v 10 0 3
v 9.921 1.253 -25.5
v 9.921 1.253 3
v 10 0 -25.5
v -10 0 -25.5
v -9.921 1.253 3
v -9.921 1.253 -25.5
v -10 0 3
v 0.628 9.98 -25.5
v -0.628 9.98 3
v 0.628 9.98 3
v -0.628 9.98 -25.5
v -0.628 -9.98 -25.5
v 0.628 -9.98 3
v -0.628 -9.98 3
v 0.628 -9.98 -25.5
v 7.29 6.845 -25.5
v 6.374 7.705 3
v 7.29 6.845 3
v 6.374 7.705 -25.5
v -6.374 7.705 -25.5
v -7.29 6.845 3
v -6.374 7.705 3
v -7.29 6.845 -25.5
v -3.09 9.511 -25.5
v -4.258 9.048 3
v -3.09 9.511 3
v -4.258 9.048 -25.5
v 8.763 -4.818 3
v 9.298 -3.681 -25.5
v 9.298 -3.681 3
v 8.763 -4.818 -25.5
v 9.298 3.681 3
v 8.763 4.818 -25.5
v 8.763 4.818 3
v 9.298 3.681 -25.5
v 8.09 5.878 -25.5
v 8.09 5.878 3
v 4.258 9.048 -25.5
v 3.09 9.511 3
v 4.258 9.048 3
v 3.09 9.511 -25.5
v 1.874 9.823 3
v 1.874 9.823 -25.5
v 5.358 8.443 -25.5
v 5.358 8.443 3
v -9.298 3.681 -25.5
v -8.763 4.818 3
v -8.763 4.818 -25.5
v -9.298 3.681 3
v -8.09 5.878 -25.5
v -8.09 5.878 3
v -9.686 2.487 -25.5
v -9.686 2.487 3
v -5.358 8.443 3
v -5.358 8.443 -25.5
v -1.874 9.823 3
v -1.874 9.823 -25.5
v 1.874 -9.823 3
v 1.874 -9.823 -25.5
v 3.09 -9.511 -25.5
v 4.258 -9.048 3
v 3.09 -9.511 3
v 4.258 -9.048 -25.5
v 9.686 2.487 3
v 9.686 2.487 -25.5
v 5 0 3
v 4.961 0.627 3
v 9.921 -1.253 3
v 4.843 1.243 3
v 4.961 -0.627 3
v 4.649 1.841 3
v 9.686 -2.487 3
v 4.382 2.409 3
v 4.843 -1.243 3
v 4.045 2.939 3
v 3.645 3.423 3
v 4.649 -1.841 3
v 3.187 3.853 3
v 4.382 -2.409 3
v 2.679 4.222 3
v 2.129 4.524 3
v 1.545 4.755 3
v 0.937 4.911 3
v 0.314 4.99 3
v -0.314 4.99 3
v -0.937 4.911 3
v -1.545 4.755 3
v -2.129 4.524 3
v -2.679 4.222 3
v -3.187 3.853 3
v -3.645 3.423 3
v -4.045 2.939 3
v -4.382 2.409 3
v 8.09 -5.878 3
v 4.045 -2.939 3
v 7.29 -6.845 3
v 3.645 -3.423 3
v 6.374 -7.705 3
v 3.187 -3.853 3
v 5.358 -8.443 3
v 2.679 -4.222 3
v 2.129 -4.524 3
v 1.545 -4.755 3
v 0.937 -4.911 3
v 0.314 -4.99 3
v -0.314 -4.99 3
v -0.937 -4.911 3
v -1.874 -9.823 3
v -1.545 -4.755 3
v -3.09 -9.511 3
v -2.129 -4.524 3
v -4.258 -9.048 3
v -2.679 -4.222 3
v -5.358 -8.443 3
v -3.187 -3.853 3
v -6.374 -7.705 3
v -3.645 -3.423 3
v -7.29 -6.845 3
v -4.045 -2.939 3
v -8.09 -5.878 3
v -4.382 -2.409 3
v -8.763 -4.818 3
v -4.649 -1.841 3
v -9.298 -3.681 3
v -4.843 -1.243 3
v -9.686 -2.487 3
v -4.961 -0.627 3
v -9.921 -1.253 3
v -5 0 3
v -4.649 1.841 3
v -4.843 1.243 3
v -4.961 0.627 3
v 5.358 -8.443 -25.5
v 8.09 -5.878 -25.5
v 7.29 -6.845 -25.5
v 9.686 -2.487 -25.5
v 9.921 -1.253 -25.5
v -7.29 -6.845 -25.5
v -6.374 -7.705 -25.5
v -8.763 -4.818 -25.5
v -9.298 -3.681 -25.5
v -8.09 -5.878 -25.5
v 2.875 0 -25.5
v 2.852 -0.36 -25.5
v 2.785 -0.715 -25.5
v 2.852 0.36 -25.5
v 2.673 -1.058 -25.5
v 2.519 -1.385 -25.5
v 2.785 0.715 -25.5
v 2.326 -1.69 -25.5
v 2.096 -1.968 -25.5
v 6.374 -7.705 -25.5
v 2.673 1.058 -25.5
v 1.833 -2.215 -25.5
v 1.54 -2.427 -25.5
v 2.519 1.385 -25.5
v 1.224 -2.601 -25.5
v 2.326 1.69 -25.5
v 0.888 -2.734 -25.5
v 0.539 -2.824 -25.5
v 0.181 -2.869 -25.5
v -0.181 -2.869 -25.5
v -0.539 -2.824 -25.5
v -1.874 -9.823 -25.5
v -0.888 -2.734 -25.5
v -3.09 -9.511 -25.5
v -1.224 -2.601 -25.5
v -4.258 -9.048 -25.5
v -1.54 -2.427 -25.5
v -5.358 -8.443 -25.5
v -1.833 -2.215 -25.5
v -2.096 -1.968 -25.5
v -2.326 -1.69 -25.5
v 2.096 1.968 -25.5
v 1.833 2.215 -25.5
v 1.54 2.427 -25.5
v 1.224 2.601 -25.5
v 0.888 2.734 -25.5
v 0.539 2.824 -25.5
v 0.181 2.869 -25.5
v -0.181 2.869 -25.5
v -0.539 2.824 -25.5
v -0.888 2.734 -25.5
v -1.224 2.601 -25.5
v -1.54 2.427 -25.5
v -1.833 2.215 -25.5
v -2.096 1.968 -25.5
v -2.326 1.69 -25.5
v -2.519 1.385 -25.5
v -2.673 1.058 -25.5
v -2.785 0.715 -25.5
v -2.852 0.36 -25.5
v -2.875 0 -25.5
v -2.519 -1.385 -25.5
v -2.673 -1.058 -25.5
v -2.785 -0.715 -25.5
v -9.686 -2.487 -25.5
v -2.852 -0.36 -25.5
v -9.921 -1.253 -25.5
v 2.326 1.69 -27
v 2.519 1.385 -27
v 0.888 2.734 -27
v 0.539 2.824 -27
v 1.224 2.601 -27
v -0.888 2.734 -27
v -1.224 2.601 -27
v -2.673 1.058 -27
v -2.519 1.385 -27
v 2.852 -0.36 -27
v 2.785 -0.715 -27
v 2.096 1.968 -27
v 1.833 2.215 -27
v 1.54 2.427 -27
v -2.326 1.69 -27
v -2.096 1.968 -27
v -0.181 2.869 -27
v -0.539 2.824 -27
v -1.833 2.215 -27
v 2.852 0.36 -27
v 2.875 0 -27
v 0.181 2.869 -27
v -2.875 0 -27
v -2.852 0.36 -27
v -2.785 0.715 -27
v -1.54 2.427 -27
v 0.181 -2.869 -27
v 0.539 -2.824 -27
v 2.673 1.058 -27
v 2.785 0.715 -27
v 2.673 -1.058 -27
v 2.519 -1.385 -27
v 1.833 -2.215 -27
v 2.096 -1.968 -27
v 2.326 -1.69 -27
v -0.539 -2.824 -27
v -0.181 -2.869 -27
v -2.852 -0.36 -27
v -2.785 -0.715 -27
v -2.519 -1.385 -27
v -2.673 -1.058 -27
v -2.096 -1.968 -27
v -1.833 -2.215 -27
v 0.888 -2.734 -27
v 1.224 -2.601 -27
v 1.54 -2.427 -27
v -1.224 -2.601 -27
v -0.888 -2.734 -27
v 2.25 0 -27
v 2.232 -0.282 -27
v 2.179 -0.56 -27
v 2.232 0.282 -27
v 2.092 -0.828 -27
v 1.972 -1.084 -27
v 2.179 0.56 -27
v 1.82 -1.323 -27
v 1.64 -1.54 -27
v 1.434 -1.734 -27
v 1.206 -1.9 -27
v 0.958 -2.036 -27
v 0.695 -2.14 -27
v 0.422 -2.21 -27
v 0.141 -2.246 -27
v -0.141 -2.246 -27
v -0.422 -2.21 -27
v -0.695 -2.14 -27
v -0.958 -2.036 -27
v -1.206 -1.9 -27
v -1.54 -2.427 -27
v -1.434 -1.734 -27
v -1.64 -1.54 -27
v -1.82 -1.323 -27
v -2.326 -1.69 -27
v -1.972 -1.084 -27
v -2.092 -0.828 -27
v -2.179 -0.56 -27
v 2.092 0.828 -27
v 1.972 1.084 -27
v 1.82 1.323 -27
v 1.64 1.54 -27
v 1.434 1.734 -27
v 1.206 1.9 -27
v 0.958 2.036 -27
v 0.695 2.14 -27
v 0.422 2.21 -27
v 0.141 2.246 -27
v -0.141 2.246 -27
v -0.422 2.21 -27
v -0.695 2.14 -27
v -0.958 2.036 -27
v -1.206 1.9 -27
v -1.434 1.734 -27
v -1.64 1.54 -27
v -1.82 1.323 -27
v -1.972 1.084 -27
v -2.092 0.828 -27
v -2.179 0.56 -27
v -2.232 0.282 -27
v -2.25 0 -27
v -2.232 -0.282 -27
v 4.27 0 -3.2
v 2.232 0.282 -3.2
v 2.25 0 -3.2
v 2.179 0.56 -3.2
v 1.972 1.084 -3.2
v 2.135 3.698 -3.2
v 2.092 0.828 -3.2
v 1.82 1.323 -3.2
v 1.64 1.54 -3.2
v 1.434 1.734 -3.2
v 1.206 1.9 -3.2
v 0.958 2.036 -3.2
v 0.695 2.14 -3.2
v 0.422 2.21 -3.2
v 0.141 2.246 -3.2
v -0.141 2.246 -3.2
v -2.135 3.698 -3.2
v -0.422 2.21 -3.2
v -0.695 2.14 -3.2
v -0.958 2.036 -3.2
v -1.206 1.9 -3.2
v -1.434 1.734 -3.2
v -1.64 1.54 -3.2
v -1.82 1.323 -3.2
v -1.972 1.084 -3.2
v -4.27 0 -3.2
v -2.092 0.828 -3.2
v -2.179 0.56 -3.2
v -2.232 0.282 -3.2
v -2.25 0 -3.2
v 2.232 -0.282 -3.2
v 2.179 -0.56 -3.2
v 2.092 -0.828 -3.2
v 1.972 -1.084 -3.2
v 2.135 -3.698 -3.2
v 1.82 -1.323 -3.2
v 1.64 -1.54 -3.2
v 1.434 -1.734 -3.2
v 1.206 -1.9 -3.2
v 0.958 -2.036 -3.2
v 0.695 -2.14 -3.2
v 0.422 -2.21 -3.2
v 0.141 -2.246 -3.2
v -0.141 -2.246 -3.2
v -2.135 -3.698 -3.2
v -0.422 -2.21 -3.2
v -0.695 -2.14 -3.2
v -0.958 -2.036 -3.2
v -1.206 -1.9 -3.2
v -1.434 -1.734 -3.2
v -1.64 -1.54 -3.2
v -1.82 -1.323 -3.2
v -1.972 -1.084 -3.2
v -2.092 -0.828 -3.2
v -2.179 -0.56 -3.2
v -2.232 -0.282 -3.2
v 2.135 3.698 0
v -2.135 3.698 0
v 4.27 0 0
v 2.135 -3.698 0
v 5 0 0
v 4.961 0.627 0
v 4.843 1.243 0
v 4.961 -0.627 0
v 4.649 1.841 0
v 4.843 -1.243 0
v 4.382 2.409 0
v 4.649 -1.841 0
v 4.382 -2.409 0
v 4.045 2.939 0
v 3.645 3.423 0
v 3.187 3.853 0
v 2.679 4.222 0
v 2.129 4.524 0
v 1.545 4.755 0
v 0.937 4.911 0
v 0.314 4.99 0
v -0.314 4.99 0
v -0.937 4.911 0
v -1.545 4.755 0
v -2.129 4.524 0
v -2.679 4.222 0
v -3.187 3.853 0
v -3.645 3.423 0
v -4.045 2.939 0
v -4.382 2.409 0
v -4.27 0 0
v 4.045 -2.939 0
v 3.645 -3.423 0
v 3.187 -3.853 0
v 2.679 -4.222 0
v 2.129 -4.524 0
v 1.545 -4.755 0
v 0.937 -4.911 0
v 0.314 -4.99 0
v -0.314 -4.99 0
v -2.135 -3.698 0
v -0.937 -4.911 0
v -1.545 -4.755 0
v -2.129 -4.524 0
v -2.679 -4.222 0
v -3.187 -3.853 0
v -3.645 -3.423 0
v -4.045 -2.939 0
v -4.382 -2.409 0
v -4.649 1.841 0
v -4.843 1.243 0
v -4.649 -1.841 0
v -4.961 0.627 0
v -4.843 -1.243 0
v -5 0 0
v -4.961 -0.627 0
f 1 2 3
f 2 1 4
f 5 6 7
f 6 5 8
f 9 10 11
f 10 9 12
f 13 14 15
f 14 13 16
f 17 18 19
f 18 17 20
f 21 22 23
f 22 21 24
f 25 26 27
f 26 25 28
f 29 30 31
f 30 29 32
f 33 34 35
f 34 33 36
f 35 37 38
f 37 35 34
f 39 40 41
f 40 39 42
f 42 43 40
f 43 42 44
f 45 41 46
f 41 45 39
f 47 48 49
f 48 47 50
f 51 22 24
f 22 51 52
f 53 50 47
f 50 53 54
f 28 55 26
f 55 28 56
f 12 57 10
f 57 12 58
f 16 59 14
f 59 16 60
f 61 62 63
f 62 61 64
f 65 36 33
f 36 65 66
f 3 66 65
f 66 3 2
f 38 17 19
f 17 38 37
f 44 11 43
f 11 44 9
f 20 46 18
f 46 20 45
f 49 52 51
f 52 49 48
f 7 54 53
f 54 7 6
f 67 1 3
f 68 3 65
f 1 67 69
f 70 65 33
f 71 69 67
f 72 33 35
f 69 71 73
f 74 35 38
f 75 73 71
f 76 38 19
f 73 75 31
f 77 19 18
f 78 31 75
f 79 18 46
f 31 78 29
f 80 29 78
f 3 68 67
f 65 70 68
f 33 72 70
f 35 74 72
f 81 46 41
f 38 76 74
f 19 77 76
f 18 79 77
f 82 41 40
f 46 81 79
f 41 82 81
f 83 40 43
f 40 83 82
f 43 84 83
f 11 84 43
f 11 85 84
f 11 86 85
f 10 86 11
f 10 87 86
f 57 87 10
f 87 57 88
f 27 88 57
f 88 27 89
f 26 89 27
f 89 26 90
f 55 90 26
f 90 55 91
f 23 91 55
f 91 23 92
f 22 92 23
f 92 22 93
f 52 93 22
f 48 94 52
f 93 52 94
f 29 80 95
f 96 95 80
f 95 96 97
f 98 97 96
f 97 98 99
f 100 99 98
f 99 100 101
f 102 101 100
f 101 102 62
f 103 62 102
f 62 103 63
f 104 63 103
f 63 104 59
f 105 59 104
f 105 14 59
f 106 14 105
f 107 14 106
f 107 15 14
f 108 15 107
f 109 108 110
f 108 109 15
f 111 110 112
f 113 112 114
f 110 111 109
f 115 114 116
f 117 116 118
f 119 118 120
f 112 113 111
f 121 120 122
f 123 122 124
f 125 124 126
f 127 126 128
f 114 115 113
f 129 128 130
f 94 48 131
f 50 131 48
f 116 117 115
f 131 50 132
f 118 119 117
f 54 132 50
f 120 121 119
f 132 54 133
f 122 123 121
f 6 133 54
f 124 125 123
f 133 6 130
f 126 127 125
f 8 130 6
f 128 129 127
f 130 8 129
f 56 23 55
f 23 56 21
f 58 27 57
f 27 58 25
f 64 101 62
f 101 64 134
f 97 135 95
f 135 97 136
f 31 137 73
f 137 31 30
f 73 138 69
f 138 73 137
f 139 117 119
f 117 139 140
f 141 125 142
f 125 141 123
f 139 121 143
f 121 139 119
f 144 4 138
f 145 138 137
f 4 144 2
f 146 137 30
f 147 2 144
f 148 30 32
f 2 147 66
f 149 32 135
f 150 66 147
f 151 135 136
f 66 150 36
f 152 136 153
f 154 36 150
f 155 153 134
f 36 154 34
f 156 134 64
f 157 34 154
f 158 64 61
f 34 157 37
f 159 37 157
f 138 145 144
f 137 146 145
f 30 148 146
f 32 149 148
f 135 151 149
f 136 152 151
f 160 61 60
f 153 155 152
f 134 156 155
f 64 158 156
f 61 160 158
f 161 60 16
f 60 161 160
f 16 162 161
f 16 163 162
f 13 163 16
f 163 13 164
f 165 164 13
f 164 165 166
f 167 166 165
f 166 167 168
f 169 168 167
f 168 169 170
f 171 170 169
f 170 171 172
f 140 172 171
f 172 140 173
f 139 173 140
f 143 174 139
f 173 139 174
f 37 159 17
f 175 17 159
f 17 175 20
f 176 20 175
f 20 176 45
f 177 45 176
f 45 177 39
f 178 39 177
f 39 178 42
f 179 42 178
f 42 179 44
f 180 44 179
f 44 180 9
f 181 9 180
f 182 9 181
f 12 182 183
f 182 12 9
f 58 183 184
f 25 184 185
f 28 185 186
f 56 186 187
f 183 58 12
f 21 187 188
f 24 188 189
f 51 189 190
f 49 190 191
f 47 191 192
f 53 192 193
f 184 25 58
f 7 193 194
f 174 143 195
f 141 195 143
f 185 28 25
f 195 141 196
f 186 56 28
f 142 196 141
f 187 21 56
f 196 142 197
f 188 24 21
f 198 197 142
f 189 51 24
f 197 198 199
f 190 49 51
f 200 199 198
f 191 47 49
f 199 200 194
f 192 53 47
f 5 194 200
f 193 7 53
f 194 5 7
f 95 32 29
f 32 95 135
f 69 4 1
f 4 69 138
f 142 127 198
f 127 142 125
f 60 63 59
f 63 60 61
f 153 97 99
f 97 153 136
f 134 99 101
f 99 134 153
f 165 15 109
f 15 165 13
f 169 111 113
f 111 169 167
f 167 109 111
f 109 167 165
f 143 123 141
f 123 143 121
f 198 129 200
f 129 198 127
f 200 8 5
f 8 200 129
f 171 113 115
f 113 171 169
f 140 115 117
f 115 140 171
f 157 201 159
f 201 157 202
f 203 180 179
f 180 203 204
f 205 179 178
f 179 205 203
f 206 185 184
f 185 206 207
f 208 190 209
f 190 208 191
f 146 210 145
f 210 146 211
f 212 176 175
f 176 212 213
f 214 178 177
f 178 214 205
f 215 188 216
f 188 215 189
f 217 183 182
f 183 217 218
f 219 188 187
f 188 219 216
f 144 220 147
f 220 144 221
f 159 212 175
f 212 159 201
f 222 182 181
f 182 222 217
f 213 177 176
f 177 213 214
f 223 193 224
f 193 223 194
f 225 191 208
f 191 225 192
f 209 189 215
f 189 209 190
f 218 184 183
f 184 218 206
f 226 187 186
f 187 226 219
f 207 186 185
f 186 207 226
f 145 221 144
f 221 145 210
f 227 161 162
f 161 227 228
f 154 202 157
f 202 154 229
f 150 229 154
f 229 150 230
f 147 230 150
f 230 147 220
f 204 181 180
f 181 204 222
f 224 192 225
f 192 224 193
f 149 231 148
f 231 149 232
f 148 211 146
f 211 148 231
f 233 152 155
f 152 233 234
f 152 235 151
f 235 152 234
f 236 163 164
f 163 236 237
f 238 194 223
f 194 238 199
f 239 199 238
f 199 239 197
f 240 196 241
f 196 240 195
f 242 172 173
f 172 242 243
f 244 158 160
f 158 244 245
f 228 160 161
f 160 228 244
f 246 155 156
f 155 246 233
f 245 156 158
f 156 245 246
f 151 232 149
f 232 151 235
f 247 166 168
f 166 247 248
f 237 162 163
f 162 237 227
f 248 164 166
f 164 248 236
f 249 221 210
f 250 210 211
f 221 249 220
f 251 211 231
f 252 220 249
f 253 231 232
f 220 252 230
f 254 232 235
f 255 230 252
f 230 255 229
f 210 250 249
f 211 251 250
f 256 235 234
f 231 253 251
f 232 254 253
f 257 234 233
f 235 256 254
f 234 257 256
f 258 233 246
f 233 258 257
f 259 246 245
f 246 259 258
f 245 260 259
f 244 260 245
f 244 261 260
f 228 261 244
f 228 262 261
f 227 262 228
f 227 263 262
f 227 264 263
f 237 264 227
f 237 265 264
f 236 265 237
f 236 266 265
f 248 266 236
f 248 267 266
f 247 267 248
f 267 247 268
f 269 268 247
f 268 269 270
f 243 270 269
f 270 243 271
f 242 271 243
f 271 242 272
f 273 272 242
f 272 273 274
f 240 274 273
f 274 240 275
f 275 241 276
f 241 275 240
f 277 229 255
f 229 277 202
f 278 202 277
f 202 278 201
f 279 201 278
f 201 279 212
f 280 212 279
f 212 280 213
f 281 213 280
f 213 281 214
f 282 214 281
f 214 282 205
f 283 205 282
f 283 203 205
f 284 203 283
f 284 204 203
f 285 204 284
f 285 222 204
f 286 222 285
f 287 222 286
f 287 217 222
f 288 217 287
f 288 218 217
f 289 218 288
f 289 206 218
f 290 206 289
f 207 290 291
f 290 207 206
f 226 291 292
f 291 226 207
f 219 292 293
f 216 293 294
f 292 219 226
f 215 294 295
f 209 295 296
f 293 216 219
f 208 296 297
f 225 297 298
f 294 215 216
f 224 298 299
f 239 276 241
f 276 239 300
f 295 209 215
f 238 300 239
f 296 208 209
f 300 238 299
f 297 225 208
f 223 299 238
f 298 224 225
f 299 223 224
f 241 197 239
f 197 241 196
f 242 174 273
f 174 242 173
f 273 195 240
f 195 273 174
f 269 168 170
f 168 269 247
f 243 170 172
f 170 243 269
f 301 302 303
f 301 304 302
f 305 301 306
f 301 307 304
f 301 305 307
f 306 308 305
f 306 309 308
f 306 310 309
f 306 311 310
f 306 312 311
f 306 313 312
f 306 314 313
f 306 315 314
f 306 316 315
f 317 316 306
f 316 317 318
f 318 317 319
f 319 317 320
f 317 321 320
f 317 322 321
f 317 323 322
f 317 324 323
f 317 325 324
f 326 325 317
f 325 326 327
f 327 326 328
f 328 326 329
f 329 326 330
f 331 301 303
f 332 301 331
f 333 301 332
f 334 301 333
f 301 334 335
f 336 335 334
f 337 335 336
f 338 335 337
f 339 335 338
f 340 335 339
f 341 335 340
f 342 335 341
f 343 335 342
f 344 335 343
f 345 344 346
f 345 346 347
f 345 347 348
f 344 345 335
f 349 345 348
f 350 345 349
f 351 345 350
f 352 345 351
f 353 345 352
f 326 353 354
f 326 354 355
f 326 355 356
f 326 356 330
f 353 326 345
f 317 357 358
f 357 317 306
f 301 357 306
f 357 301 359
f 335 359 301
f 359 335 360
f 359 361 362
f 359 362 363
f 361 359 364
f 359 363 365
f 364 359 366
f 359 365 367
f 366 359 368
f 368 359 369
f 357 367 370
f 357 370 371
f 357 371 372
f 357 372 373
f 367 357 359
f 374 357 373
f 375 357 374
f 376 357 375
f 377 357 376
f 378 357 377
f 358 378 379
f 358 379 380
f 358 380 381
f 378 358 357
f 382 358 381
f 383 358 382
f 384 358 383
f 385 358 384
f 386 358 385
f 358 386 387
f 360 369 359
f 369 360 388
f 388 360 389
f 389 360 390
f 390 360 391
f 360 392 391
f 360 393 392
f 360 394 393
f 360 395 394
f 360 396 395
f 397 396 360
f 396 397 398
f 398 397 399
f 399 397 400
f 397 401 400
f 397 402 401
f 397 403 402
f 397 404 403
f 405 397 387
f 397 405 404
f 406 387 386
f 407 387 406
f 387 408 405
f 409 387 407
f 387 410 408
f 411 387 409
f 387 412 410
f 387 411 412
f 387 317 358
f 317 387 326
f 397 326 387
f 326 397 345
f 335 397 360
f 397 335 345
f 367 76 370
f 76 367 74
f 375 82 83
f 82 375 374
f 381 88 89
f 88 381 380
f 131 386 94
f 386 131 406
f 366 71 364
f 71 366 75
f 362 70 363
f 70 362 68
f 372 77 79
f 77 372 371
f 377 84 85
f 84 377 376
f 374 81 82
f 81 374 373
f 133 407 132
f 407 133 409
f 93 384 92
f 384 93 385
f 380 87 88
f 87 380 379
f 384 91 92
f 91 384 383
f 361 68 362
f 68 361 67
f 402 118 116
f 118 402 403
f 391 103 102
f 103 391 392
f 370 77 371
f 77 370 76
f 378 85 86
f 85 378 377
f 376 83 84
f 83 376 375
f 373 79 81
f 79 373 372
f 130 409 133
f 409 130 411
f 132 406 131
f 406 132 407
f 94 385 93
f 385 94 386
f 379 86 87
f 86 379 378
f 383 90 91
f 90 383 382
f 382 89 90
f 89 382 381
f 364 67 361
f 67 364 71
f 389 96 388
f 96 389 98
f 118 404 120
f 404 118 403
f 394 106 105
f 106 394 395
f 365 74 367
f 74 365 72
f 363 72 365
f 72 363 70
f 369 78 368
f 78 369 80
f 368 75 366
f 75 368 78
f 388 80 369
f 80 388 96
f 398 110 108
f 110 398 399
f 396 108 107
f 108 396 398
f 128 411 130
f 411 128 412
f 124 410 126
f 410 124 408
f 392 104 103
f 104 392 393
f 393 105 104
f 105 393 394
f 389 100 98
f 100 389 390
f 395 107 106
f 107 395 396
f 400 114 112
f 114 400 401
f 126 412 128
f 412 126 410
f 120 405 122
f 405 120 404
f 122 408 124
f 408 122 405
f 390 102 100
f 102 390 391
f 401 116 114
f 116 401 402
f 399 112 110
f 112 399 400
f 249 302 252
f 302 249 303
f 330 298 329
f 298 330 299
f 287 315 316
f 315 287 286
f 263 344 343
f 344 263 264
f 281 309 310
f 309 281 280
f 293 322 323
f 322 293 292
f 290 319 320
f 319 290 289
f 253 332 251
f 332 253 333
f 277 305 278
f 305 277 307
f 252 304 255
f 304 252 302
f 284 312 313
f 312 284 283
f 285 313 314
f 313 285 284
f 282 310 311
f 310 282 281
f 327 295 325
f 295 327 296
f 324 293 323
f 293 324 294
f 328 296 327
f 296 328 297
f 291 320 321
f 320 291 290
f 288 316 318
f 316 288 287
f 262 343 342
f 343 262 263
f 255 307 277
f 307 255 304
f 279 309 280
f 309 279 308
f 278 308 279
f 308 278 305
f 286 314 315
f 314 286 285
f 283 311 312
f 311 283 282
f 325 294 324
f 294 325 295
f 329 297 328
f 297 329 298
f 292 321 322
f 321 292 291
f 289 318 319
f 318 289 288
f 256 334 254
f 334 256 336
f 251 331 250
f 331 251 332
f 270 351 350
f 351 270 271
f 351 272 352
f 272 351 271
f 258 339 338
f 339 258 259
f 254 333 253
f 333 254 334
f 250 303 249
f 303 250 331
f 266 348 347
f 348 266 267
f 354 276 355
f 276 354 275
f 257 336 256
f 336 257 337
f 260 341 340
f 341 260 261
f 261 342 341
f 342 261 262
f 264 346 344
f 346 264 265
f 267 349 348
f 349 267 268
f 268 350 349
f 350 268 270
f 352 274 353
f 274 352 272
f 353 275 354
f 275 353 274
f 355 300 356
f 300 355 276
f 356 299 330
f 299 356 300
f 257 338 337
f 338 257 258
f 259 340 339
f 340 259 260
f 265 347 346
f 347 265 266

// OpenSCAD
$fn = 50;

difference() {
	union() {
		translate(v = [0, 0, -25.5]) {
			cylinder(h = 28.5, r = 10.0);
		}
		#translate(v = [0, 0, -27.0]) {
			cylinder(h = 27, r = 2.875);
		}
	}
	union() {
		translate(v = [0, 0, 0]) {
			rotate(a = [0, 0, 0]) {
				difference() {
					union() {
						translate(v = [0, 0, -3.2]) {
							linear_extrude(height = 3.2) {
								polygon(points = [[4.2698, 0.0], [2.1349000000000005, 3.697755269078796], [-2.134899999999999, 3.6977552690787965], [-4.2698, 5.228996902999369e-16], [-2.134900000000002, -3.6977552690787956], [2.1348999999999974, -3.697755269078798]]);
							}
						}
					}
					union();
				}
			}
		}
		#cylinder(h = 3, r = 5.0);
		#translate(v = [0, 0, -100.0]) {
			cylinder(h = 200, r = 2.25);
		}
	}
}
